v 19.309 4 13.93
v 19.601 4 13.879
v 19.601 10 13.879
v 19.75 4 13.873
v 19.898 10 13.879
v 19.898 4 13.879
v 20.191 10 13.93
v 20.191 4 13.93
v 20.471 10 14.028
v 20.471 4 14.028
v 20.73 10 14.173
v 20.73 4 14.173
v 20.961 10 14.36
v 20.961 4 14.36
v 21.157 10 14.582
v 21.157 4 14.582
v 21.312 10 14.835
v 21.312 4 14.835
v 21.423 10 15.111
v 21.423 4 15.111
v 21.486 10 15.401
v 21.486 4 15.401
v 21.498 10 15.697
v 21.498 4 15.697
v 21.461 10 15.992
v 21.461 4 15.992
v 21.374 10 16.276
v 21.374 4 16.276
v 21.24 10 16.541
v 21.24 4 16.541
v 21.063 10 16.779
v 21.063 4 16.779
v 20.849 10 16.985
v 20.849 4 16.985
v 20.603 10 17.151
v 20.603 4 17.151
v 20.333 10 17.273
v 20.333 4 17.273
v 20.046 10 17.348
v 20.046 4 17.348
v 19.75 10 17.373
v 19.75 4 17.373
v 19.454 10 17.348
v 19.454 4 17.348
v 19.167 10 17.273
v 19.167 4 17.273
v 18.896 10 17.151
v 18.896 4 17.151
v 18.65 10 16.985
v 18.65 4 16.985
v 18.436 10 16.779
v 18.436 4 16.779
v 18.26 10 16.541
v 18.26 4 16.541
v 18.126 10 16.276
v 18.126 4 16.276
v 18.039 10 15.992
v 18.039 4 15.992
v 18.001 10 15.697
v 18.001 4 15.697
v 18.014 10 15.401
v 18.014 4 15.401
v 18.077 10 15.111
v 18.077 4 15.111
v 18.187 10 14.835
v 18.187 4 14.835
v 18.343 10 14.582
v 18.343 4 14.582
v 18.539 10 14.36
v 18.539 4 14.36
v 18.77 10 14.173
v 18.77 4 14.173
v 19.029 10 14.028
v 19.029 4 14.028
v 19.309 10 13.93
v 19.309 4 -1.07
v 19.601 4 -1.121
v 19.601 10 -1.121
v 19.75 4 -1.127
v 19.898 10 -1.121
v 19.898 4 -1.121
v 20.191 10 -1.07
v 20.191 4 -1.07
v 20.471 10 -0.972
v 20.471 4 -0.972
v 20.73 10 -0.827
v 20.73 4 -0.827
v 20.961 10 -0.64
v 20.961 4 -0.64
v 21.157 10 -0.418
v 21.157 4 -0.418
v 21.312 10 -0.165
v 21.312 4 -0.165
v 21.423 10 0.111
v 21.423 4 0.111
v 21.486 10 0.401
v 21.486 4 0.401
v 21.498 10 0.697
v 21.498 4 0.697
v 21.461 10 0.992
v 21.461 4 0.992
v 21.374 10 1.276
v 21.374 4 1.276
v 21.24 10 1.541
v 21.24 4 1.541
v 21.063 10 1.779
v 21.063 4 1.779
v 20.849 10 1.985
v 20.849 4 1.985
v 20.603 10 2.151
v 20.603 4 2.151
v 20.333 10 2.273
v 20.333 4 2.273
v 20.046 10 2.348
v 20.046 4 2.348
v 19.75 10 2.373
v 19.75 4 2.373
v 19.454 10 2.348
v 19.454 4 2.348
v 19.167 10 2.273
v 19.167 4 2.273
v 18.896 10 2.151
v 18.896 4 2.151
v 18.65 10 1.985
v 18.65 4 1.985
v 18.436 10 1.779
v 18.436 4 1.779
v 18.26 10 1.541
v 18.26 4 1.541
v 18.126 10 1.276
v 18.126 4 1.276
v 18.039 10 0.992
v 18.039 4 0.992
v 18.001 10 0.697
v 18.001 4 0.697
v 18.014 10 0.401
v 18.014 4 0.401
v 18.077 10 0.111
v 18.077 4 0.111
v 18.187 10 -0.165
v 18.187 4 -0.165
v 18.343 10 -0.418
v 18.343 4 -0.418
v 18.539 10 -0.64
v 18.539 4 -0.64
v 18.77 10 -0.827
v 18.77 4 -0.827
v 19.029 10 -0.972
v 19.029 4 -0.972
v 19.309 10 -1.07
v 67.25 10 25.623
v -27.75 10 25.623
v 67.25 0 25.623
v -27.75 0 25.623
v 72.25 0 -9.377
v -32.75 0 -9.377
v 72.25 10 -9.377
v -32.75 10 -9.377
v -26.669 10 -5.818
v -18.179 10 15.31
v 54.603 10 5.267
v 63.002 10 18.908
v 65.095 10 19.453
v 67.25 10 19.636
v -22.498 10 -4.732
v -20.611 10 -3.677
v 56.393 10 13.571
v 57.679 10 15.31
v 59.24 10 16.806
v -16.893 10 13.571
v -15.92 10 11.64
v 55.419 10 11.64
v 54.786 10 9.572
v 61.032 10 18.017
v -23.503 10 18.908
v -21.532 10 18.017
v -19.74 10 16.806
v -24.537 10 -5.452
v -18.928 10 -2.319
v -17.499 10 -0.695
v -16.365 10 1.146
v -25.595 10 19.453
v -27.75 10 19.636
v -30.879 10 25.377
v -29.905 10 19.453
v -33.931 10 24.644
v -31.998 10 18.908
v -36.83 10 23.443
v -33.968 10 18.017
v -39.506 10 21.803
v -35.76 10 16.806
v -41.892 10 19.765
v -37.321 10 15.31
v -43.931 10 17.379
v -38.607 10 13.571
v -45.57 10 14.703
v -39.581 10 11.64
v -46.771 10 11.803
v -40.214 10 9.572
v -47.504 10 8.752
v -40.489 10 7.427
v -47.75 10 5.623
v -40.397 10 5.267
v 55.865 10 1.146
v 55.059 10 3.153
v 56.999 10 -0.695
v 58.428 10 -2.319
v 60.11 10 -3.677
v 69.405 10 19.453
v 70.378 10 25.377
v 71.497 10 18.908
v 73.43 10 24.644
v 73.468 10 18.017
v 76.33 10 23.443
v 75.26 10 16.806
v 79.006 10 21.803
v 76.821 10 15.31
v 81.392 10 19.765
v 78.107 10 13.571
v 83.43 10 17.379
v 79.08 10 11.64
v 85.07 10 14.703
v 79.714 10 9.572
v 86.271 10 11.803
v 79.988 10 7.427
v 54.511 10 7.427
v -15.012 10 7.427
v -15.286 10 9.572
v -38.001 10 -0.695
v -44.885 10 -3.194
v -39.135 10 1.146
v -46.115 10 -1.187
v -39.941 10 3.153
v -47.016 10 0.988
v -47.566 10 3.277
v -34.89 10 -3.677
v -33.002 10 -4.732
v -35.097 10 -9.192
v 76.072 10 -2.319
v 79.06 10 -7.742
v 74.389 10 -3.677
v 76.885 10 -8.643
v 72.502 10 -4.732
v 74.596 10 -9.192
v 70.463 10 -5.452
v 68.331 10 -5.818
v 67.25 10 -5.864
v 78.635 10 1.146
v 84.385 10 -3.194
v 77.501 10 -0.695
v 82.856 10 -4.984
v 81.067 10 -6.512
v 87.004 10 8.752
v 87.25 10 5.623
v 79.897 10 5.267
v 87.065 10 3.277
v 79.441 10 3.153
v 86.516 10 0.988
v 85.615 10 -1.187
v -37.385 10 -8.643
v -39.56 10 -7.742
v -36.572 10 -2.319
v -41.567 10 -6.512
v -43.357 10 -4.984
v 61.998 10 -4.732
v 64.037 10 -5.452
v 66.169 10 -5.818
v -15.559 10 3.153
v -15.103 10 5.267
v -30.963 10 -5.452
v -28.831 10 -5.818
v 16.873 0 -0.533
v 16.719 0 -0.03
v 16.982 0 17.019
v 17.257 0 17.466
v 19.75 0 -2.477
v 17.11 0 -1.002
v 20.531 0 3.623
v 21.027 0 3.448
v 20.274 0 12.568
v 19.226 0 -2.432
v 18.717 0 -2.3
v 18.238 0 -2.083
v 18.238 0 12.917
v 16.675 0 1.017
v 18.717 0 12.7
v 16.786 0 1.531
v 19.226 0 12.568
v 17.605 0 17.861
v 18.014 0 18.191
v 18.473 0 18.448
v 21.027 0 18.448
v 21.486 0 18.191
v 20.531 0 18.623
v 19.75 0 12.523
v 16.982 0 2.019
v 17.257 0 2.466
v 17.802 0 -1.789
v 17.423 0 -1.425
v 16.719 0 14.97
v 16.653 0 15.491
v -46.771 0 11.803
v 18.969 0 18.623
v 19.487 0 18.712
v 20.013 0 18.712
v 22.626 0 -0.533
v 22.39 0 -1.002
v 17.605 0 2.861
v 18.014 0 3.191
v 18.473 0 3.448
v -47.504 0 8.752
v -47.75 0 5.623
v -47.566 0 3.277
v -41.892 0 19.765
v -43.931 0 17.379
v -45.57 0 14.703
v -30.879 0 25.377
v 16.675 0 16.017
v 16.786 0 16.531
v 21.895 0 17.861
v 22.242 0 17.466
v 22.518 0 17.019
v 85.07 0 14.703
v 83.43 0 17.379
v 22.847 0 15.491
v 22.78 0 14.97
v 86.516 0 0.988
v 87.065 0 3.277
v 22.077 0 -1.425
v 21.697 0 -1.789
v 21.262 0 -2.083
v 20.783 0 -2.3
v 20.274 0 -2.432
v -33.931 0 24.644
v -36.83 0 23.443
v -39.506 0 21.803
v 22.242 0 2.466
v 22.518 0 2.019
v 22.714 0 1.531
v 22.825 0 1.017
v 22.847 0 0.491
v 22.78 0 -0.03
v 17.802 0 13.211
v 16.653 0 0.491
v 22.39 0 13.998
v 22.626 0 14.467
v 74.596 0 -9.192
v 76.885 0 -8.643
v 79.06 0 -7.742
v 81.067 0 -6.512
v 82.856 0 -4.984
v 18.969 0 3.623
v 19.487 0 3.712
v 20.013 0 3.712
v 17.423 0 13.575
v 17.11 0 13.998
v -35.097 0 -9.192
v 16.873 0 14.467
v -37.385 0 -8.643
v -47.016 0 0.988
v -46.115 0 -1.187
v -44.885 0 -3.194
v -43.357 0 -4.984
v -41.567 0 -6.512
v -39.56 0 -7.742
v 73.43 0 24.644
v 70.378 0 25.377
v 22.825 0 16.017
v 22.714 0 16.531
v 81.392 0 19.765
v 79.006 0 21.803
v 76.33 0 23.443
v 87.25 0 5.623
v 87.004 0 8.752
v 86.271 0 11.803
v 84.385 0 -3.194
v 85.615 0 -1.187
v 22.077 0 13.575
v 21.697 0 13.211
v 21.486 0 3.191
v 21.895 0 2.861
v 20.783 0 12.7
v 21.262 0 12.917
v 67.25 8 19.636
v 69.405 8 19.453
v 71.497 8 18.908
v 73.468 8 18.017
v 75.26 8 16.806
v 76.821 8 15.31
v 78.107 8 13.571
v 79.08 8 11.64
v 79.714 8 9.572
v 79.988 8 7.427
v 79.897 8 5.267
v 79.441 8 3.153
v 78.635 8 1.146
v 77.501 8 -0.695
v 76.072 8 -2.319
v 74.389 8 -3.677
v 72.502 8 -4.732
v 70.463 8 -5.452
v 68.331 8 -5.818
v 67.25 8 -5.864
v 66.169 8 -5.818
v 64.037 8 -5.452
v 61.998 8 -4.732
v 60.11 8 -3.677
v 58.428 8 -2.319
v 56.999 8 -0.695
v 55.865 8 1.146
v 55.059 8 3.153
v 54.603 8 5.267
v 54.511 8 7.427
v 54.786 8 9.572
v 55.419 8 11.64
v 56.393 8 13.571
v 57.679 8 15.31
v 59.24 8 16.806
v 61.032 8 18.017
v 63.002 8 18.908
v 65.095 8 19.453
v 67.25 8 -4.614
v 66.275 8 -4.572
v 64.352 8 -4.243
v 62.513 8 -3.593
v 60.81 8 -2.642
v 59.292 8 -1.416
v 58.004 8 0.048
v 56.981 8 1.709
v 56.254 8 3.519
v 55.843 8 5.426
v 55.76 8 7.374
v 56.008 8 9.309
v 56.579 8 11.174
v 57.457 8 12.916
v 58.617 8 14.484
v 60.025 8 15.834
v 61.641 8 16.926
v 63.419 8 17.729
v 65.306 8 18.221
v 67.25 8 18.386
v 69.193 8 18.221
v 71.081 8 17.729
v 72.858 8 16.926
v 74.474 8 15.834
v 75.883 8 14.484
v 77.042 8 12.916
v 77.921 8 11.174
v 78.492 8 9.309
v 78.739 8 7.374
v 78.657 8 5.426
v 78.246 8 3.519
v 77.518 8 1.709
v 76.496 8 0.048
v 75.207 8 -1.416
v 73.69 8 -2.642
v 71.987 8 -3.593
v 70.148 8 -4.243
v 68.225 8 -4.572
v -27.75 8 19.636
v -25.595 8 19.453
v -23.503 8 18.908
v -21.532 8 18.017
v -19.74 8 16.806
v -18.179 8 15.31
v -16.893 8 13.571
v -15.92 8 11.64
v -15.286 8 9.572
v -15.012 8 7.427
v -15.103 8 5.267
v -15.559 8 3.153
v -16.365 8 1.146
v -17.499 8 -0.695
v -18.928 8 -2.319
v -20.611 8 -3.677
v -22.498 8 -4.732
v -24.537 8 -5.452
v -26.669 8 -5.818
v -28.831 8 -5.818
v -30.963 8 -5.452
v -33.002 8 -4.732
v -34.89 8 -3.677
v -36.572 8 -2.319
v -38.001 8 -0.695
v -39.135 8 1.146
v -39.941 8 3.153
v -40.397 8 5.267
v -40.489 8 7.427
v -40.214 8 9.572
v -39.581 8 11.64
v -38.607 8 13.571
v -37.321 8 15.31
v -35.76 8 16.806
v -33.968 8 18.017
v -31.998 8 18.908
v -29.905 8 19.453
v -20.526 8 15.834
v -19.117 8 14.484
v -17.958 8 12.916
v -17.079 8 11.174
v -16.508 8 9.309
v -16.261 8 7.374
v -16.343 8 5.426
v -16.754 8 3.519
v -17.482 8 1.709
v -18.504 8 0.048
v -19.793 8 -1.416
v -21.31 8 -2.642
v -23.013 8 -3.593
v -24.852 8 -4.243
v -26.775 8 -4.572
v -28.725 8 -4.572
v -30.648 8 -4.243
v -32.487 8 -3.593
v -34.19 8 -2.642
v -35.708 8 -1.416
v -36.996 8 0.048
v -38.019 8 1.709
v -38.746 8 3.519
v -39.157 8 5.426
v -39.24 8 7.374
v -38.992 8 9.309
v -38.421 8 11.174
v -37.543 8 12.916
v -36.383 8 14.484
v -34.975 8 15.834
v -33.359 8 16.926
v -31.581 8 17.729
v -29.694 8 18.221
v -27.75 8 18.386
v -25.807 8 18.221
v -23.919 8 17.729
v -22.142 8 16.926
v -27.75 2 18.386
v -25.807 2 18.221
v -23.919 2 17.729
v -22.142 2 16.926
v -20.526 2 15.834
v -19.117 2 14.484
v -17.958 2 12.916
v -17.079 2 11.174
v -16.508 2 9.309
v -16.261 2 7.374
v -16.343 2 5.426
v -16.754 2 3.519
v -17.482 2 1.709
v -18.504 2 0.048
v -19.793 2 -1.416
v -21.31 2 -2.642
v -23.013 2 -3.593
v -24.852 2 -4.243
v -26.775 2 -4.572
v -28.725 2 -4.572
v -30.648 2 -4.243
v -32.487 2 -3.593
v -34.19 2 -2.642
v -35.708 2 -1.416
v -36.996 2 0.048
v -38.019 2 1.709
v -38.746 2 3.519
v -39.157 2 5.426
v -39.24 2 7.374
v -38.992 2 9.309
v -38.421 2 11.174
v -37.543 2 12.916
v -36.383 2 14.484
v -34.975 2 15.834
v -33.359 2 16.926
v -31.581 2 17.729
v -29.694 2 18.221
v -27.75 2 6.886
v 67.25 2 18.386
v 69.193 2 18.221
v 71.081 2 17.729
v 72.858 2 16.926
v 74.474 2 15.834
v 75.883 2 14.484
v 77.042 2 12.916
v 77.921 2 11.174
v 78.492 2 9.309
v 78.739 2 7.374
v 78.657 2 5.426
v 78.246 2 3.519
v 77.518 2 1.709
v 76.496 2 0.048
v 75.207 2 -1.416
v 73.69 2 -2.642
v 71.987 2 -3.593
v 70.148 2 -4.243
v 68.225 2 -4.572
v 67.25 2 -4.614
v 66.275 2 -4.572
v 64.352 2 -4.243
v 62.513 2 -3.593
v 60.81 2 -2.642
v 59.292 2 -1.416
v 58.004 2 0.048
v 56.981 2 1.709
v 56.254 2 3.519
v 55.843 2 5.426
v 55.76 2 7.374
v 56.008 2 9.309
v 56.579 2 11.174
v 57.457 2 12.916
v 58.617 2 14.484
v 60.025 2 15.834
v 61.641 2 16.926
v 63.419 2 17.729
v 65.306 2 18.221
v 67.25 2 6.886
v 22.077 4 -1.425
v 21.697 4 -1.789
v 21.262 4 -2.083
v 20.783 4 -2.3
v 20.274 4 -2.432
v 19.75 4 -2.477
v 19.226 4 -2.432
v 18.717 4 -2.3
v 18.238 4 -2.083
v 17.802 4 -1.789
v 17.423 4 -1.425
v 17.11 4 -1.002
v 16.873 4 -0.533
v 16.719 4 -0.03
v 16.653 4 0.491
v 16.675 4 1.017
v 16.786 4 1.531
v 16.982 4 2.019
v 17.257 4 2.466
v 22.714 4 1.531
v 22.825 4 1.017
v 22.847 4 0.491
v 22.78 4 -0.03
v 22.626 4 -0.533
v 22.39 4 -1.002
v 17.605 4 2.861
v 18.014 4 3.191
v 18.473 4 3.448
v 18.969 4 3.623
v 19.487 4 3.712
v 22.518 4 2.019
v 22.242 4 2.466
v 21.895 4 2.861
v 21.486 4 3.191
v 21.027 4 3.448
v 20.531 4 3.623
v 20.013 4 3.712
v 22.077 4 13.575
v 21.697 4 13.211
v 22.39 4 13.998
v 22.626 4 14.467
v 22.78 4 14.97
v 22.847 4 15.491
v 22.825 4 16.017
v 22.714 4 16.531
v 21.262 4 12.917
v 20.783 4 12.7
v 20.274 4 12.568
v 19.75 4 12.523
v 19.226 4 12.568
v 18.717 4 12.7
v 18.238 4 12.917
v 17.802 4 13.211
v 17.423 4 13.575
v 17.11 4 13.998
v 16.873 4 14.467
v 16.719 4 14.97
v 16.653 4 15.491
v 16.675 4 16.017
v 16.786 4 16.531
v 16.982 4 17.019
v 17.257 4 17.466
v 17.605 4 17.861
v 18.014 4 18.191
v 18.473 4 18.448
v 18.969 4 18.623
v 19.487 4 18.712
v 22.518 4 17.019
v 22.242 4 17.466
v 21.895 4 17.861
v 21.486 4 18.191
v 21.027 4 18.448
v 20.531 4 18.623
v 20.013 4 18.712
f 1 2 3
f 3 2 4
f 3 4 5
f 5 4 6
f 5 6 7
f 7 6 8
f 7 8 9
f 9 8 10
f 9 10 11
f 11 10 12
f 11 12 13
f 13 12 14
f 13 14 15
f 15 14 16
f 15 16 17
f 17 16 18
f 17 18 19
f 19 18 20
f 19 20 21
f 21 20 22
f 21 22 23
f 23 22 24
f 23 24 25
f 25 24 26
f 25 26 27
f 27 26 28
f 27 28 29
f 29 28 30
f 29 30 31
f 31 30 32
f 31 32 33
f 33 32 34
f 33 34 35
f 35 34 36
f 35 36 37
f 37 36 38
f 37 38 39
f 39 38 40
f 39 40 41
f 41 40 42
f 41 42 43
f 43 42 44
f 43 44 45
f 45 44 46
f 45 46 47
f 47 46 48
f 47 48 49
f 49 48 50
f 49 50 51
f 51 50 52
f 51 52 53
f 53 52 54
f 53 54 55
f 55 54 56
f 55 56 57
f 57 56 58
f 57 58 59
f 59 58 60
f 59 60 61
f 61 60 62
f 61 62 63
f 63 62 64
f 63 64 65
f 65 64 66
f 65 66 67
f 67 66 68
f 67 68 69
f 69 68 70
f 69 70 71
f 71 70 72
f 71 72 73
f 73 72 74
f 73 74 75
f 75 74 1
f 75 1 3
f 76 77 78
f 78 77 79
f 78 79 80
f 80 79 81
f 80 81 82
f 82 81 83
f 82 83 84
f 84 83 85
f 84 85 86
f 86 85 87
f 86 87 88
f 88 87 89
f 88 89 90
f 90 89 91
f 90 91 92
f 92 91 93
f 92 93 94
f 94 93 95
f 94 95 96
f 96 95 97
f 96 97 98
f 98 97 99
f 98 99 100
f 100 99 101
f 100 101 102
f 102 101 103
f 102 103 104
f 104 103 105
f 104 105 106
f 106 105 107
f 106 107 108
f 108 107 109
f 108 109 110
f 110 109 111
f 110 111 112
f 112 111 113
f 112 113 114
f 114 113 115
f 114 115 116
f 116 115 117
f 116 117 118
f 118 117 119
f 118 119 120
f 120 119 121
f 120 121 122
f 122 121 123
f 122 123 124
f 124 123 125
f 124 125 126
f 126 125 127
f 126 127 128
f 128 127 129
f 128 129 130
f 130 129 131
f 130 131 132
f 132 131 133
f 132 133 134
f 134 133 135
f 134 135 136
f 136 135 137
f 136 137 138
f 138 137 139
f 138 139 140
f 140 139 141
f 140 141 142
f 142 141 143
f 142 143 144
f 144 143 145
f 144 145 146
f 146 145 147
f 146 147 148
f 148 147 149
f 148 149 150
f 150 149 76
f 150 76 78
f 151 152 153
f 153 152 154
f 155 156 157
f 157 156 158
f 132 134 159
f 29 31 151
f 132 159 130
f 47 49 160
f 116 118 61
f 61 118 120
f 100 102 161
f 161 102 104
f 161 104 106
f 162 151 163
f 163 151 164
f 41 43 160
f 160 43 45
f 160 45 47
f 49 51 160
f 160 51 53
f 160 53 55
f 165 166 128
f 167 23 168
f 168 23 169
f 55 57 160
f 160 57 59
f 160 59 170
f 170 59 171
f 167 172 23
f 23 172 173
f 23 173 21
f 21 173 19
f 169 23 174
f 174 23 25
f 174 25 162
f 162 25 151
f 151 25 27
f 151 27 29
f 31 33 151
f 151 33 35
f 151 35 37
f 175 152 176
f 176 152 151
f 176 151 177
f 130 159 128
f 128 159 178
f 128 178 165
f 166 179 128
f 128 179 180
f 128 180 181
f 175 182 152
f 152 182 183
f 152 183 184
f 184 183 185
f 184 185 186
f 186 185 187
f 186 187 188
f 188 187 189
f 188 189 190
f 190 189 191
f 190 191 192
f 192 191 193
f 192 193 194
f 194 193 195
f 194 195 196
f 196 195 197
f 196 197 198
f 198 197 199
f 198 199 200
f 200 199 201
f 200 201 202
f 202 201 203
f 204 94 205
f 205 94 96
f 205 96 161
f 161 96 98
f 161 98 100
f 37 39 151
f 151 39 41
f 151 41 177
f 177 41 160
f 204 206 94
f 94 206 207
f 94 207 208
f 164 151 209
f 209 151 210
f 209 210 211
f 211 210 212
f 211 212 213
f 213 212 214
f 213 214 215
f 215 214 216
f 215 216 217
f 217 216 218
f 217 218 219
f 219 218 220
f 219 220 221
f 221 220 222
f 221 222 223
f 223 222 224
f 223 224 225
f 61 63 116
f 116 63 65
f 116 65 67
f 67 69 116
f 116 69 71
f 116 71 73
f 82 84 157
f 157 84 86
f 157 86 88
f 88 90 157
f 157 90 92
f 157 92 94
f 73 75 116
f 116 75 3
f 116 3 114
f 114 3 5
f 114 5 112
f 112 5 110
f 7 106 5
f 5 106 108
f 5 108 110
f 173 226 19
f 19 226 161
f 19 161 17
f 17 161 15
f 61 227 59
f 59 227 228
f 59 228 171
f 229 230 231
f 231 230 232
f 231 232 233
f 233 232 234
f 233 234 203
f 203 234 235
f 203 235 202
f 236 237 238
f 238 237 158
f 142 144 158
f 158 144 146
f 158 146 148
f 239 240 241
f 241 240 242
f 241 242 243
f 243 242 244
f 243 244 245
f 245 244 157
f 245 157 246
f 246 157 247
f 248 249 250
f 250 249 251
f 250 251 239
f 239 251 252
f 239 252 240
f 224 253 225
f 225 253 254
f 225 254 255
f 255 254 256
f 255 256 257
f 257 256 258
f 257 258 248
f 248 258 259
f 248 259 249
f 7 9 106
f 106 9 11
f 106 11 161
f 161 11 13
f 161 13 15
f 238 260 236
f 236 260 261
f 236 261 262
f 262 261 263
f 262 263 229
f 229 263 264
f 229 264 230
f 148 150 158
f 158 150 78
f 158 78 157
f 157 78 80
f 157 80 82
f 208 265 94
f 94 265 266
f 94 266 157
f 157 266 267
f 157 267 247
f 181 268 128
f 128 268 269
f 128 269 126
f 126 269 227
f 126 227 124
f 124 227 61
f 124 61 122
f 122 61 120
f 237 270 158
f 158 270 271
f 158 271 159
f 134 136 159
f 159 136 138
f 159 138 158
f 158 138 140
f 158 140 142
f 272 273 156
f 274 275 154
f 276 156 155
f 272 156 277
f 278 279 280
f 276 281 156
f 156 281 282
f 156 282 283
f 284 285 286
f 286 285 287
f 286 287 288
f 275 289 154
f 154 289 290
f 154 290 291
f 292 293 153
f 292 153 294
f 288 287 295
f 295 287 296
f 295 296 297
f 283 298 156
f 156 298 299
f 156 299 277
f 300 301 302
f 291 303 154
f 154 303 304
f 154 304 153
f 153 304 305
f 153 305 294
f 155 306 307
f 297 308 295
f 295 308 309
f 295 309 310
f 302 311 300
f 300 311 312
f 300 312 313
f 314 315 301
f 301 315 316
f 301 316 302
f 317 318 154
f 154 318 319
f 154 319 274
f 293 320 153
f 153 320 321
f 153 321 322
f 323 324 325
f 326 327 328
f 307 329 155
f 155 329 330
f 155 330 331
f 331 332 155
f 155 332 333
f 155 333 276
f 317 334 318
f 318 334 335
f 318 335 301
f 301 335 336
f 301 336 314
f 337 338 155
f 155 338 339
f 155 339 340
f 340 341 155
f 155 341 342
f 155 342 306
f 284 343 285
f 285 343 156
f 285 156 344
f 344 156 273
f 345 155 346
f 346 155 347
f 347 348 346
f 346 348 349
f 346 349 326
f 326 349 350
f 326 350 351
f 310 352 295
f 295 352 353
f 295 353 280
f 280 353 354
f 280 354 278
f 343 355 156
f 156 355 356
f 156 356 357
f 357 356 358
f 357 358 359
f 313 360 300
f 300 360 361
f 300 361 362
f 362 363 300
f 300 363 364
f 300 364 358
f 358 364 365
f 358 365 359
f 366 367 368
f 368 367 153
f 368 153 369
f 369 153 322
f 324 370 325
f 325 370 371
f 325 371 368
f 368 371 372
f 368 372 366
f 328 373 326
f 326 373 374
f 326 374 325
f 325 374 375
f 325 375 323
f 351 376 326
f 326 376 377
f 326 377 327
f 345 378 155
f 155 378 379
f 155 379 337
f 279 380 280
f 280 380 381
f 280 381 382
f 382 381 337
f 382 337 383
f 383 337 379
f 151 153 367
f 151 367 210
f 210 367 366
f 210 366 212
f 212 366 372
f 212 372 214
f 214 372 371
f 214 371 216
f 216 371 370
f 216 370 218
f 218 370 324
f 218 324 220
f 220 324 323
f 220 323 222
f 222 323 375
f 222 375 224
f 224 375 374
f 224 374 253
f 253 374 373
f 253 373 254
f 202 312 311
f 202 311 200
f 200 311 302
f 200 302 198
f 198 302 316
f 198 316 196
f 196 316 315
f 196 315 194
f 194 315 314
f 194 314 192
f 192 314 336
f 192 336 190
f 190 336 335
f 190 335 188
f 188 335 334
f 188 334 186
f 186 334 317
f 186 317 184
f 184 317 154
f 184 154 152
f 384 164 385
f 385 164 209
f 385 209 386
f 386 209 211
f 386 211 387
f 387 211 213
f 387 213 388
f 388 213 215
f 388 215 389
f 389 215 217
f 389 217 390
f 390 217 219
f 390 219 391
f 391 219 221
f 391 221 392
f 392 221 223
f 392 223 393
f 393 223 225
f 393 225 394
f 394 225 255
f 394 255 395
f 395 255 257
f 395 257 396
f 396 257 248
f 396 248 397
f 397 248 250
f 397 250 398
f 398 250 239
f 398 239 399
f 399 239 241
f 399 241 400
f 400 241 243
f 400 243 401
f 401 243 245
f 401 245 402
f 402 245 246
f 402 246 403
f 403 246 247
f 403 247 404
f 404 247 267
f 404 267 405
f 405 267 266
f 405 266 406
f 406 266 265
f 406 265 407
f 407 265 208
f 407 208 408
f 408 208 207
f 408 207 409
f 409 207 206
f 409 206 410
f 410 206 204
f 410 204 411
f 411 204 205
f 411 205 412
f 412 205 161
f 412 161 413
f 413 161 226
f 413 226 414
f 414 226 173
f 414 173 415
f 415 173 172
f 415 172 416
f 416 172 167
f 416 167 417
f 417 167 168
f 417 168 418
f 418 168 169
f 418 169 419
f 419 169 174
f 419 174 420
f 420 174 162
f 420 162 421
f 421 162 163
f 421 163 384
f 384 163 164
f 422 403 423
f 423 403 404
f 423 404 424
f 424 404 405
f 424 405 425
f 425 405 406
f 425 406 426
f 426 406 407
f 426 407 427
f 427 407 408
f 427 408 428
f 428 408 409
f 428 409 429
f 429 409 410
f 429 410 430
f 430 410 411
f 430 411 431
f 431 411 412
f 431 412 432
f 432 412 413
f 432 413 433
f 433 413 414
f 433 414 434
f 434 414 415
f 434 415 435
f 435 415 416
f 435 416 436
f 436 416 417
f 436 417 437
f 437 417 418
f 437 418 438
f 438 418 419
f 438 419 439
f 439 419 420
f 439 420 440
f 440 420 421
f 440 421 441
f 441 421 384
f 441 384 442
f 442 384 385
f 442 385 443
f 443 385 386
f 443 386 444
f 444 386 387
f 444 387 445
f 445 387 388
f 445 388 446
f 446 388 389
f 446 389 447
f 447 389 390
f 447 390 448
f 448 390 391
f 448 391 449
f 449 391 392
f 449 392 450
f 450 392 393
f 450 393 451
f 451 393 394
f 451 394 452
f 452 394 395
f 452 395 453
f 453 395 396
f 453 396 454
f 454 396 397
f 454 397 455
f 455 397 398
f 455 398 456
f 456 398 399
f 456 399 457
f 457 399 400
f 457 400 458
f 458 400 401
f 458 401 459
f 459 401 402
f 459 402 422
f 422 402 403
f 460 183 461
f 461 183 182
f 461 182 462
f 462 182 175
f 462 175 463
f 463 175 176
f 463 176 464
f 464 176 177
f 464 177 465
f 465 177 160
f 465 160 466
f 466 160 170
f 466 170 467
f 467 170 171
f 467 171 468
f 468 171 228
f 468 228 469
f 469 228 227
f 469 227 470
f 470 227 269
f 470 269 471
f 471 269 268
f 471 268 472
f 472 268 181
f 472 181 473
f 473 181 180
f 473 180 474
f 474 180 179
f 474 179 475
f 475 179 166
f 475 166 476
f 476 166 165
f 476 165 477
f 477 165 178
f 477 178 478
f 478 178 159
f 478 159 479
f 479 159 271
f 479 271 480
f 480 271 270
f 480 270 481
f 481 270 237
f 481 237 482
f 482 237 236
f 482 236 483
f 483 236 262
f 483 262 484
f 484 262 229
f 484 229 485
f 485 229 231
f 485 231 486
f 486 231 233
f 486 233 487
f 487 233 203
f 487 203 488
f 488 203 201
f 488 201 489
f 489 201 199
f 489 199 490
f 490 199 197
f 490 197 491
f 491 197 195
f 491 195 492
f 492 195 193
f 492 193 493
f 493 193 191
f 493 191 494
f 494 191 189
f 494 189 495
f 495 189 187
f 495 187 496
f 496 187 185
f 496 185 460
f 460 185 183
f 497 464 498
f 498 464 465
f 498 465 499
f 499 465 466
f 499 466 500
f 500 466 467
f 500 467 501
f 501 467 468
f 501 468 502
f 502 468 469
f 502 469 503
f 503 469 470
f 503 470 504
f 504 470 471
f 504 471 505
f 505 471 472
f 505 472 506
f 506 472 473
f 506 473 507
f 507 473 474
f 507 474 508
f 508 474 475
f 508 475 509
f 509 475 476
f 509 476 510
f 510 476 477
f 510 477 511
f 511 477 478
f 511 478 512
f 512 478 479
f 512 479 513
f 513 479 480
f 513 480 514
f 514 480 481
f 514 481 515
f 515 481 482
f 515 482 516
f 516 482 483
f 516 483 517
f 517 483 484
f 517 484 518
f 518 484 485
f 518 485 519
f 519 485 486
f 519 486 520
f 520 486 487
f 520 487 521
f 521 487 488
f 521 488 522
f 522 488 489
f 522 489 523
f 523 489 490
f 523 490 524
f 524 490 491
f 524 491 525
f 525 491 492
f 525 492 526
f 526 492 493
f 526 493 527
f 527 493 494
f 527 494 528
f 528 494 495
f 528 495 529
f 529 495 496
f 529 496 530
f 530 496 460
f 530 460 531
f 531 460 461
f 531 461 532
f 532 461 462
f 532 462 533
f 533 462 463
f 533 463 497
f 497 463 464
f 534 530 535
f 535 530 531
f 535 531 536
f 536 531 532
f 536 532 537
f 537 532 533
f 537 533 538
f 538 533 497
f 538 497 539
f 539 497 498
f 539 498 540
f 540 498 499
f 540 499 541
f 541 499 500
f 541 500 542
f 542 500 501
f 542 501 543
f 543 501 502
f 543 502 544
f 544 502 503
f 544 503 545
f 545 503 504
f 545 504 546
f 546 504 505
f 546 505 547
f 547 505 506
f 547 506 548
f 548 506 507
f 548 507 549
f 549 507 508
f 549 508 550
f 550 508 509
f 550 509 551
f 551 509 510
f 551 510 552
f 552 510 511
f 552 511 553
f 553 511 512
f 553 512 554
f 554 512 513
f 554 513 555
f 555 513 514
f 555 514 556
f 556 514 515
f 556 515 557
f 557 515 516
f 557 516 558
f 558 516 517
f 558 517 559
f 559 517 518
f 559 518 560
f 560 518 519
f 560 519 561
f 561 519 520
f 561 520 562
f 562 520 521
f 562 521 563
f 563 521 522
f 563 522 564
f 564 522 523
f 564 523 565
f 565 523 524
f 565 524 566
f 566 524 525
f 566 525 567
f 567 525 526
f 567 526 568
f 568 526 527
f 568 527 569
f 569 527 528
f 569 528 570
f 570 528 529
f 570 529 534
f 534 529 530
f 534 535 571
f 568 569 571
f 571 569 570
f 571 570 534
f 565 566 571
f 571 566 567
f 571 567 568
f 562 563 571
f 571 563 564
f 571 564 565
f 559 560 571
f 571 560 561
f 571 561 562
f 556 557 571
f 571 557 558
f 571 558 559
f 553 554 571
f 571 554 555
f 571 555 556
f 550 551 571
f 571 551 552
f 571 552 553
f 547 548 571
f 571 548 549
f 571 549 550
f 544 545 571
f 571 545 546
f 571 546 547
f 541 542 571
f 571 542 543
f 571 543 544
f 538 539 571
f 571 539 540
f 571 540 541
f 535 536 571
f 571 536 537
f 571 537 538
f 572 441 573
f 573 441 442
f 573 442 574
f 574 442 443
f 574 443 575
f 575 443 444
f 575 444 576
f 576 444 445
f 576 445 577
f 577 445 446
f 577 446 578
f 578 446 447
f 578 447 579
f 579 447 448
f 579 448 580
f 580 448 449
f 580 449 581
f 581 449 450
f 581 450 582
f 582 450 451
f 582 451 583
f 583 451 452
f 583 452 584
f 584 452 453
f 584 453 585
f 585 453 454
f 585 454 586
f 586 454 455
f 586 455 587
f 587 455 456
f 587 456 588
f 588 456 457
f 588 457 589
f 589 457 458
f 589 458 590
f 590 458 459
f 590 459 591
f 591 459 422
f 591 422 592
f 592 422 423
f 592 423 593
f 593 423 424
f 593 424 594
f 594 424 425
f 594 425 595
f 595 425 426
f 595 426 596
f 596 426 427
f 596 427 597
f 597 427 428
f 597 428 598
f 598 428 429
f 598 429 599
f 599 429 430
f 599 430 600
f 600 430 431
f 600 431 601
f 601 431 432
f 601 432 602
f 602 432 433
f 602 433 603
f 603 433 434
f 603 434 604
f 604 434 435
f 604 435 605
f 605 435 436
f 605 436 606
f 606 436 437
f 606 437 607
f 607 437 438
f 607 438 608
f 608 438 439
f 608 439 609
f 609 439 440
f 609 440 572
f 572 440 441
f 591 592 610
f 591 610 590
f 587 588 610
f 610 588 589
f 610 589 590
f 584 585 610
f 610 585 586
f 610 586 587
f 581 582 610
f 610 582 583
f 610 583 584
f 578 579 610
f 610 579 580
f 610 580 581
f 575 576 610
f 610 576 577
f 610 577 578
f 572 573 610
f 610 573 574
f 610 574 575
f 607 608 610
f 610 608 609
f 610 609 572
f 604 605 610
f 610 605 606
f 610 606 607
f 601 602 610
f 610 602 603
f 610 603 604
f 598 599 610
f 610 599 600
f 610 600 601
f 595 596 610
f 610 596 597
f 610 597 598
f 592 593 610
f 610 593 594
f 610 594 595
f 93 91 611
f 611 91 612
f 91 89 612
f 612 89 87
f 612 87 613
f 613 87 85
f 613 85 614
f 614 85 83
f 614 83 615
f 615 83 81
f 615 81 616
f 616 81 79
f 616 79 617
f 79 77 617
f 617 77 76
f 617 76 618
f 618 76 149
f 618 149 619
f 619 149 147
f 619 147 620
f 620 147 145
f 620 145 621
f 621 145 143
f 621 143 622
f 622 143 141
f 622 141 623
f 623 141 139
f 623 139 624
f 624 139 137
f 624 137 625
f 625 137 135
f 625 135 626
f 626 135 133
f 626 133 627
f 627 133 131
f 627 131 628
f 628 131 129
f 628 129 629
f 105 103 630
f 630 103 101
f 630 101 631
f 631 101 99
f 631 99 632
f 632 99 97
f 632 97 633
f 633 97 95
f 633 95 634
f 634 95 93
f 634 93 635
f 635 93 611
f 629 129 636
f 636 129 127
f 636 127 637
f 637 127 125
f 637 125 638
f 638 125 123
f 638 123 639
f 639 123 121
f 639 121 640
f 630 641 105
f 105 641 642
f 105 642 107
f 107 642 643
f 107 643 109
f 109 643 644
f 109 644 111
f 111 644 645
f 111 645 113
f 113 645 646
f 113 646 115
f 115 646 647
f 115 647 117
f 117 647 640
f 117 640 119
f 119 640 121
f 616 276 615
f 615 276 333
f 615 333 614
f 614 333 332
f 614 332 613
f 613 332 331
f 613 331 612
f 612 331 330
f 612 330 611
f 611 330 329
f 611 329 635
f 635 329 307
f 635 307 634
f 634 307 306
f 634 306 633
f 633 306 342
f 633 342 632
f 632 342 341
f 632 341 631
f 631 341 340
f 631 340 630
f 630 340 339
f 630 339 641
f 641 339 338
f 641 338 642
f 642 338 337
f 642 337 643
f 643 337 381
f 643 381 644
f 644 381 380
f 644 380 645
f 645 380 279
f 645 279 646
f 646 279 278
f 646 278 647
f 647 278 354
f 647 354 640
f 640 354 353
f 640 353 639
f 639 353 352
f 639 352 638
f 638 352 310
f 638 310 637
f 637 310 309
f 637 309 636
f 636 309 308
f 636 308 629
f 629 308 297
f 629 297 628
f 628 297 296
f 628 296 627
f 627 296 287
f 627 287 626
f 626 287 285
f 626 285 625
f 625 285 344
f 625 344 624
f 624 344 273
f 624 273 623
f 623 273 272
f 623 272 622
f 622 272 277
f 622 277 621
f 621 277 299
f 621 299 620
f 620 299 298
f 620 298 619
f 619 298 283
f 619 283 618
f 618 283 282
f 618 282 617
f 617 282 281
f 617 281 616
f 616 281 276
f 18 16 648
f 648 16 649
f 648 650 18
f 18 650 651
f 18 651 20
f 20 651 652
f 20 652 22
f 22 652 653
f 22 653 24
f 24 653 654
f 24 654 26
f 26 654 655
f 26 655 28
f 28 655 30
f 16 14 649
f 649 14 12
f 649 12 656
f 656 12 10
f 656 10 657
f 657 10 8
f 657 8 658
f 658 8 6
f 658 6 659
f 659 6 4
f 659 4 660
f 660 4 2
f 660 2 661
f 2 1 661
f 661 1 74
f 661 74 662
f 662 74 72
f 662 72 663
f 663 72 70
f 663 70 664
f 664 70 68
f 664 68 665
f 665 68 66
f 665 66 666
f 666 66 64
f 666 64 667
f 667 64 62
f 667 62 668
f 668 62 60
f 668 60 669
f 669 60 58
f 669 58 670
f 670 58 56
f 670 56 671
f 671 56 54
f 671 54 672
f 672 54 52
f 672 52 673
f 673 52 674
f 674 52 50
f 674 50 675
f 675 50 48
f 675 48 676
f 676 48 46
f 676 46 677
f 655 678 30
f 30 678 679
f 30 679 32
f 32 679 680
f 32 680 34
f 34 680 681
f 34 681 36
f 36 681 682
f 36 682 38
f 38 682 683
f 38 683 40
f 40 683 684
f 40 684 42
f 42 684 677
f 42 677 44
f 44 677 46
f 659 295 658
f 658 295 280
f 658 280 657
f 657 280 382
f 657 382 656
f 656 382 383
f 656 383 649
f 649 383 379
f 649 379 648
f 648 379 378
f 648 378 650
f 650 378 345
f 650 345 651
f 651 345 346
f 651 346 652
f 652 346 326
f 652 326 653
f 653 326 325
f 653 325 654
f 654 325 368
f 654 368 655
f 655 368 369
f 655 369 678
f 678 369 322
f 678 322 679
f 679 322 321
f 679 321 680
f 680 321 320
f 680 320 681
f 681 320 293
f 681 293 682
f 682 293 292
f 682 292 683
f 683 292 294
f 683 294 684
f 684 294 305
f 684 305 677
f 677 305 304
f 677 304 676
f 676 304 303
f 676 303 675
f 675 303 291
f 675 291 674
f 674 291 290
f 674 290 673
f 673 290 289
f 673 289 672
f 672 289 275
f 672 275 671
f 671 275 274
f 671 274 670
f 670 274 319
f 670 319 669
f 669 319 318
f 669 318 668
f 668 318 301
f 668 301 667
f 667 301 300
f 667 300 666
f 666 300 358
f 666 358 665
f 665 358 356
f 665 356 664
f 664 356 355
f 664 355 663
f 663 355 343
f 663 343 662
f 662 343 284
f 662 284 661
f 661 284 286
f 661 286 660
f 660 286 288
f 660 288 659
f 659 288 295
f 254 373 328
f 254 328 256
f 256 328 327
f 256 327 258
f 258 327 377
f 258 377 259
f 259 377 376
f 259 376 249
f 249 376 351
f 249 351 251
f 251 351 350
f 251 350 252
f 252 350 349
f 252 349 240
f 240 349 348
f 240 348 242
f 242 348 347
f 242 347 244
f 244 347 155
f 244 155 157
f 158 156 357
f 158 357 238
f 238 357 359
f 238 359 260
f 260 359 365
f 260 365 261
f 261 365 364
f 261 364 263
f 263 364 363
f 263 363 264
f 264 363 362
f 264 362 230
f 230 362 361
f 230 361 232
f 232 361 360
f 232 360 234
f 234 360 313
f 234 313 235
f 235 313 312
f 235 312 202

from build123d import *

# Parameters (mm, degrees)
SKETCH1_W           = 135
SKETCH1_H           = 35
BOSS_EXTRUDE1_DEPTH = 10
FILLET1_R           = 20
SKETCH3_R           = 12.75
CUT_EXTRUDE1_DEPTH  = 2
SKETCH4_R           = 11.5
CUT_EXTRUDE2_DEPTH  = 6
CUT_EXTRUDE3_REACH  = 93.483
SKETCH5_R           = 1.75
SKETCH6_R           = 3.1
CUT_EXTRUDE4_DEPTH  = 4
FILLET2_R           = 15


with BuildPart() as part:
    # Sketch1 → Boss-Extrude1 (new body)
    with BuildSketch(Plane(origin=(0, 0, 0), x_dir=(1, 0, 0), z_dir=(0, 1, 0))):
        with Locations((19.749798241, -8.123070146)):
            Rectangle(SKETCH1_W, SKETCH1_H)
    extrude(amount=BOSS_EXTRUDE1_DEPTH)

    # Fillet1
    fillet1_edges = [part.edges().sort_by_distance(p)[0] for p in [
        (87.249798241, 5, 25.623070146),
        (-47.750201759, 5, 25.623070146),
    ]]
    fillet(fillet1_edges, radius=FILLET1_R)

    # Sketch3 → Cut-Extrude1 (cut)
    with BuildSketch(Plane(origin=(0, 10, 0), x_dir=(1, 0, 0), z_dir=(0, 1, 0))):
        with Locations(Location((-27.750201759, -6.88629089, 0), (0, 0, 270))):
            Circle(SKETCH3_R)
        with Locations(Location((67.249798241, -6.88629089, 0), (0, 0, 90))):
            Circle(SKETCH3_R)
    extrude(amount=-CUT_EXTRUDE1_DEPTH, mode=Mode.SUBTRACT)

    # Sketch4 → Cut-Extrude2 (cut)
    with BuildSketch(Plane(origin=(0, 8, 0), x_dir=(1, 0, 0), z_dir=(0, 1, 0))):
        with Locations(Location((-27.750201759, -6.88629089, 0), (0, 0, 270))):
            Circle(SKETCH4_R)
        with Locations(Location((67.249798241, -6.88629089, 0), (0, 0, 90))):
            Circle(SKETCH4_R)
    extrude(amount=-CUT_EXTRUDE2_DEPTH, mode=Mode.SUBTRACT)

    # Sketch5 → Cut-Extrude3 (cut, up to next)
    with BuildSketch(Plane(origin=(0, 10, 0), x_dir=(1, 0, 0), z_dir=(0, 1, 0)), mode=Mode.PRIVATE) as cut_extrude3_sk1:
        with Locations(Location((19.749798241, -0.623070146, 0), (0, 0, 270))):
            Circle(SKETCH5_R)
    cut_extrude3_tool1 = extrude(cut_extrude3_sk1.sketch, amount=-CUT_EXTRUDE3_REACH, mode=Mode.PRIVATE) & part.part
    # Sketch5 → Cut-Extrude3 (cut, up to next)
    with BuildSketch(Plane(origin=(0, 10, 0), x_dir=(1, 0, 0), z_dir=(0, 1, 0)), mode=Mode.PRIVATE) as cut_extrude3_sk2:
        with Locations(Location((19.749798241, -15.623070146, 0), (0, 0, 270))):
            Circle(SKETCH5_R)
    cut_extrude3_tool2 = extrude(cut_extrude3_sk2.sketch, amount=-CUT_EXTRUDE3_REACH, mode=Mode.PRIVATE) & part.part
    add(cut_extrude3_tool1.solids().sort_by_distance((19.749798, 10, 0.62307))[0], mode=Mode.SUBTRACT)
    add(cut_extrude3_tool2.solids().sort_by_distance((19.749798, 10, 15.62307))[0], mode=Mode.SUBTRACT)

    # Sketch6 → Cut-Extrude4 (cut)
    with BuildSketch(Plane.XZ):
        with Locations(Location((19.749798241, 15.623070146, 0), (0, 0, 270))):
            Circle(SKETCH6_R)
        with Locations(Location((19.749798241, 0.623070146, 0), (0, 0, 270))):
            Circle(SKETCH6_R)
    extrude(amount=-CUT_EXTRUDE4_DEPTH, mode=Mode.SUBTRACT)

    # Fillet2
    fillet2_edges = [part.edges().sort_by_distance(p)[0] for p in [
        (-47.750201759, 5, -9.376929854),
        (87.249798241, 5, -9.376929854),
    ]]
    fillet(fillet2_edges, radius=FILLET2_R - 0.0001)  # a hair under: the kernel refuses the full size


solid = part.part
